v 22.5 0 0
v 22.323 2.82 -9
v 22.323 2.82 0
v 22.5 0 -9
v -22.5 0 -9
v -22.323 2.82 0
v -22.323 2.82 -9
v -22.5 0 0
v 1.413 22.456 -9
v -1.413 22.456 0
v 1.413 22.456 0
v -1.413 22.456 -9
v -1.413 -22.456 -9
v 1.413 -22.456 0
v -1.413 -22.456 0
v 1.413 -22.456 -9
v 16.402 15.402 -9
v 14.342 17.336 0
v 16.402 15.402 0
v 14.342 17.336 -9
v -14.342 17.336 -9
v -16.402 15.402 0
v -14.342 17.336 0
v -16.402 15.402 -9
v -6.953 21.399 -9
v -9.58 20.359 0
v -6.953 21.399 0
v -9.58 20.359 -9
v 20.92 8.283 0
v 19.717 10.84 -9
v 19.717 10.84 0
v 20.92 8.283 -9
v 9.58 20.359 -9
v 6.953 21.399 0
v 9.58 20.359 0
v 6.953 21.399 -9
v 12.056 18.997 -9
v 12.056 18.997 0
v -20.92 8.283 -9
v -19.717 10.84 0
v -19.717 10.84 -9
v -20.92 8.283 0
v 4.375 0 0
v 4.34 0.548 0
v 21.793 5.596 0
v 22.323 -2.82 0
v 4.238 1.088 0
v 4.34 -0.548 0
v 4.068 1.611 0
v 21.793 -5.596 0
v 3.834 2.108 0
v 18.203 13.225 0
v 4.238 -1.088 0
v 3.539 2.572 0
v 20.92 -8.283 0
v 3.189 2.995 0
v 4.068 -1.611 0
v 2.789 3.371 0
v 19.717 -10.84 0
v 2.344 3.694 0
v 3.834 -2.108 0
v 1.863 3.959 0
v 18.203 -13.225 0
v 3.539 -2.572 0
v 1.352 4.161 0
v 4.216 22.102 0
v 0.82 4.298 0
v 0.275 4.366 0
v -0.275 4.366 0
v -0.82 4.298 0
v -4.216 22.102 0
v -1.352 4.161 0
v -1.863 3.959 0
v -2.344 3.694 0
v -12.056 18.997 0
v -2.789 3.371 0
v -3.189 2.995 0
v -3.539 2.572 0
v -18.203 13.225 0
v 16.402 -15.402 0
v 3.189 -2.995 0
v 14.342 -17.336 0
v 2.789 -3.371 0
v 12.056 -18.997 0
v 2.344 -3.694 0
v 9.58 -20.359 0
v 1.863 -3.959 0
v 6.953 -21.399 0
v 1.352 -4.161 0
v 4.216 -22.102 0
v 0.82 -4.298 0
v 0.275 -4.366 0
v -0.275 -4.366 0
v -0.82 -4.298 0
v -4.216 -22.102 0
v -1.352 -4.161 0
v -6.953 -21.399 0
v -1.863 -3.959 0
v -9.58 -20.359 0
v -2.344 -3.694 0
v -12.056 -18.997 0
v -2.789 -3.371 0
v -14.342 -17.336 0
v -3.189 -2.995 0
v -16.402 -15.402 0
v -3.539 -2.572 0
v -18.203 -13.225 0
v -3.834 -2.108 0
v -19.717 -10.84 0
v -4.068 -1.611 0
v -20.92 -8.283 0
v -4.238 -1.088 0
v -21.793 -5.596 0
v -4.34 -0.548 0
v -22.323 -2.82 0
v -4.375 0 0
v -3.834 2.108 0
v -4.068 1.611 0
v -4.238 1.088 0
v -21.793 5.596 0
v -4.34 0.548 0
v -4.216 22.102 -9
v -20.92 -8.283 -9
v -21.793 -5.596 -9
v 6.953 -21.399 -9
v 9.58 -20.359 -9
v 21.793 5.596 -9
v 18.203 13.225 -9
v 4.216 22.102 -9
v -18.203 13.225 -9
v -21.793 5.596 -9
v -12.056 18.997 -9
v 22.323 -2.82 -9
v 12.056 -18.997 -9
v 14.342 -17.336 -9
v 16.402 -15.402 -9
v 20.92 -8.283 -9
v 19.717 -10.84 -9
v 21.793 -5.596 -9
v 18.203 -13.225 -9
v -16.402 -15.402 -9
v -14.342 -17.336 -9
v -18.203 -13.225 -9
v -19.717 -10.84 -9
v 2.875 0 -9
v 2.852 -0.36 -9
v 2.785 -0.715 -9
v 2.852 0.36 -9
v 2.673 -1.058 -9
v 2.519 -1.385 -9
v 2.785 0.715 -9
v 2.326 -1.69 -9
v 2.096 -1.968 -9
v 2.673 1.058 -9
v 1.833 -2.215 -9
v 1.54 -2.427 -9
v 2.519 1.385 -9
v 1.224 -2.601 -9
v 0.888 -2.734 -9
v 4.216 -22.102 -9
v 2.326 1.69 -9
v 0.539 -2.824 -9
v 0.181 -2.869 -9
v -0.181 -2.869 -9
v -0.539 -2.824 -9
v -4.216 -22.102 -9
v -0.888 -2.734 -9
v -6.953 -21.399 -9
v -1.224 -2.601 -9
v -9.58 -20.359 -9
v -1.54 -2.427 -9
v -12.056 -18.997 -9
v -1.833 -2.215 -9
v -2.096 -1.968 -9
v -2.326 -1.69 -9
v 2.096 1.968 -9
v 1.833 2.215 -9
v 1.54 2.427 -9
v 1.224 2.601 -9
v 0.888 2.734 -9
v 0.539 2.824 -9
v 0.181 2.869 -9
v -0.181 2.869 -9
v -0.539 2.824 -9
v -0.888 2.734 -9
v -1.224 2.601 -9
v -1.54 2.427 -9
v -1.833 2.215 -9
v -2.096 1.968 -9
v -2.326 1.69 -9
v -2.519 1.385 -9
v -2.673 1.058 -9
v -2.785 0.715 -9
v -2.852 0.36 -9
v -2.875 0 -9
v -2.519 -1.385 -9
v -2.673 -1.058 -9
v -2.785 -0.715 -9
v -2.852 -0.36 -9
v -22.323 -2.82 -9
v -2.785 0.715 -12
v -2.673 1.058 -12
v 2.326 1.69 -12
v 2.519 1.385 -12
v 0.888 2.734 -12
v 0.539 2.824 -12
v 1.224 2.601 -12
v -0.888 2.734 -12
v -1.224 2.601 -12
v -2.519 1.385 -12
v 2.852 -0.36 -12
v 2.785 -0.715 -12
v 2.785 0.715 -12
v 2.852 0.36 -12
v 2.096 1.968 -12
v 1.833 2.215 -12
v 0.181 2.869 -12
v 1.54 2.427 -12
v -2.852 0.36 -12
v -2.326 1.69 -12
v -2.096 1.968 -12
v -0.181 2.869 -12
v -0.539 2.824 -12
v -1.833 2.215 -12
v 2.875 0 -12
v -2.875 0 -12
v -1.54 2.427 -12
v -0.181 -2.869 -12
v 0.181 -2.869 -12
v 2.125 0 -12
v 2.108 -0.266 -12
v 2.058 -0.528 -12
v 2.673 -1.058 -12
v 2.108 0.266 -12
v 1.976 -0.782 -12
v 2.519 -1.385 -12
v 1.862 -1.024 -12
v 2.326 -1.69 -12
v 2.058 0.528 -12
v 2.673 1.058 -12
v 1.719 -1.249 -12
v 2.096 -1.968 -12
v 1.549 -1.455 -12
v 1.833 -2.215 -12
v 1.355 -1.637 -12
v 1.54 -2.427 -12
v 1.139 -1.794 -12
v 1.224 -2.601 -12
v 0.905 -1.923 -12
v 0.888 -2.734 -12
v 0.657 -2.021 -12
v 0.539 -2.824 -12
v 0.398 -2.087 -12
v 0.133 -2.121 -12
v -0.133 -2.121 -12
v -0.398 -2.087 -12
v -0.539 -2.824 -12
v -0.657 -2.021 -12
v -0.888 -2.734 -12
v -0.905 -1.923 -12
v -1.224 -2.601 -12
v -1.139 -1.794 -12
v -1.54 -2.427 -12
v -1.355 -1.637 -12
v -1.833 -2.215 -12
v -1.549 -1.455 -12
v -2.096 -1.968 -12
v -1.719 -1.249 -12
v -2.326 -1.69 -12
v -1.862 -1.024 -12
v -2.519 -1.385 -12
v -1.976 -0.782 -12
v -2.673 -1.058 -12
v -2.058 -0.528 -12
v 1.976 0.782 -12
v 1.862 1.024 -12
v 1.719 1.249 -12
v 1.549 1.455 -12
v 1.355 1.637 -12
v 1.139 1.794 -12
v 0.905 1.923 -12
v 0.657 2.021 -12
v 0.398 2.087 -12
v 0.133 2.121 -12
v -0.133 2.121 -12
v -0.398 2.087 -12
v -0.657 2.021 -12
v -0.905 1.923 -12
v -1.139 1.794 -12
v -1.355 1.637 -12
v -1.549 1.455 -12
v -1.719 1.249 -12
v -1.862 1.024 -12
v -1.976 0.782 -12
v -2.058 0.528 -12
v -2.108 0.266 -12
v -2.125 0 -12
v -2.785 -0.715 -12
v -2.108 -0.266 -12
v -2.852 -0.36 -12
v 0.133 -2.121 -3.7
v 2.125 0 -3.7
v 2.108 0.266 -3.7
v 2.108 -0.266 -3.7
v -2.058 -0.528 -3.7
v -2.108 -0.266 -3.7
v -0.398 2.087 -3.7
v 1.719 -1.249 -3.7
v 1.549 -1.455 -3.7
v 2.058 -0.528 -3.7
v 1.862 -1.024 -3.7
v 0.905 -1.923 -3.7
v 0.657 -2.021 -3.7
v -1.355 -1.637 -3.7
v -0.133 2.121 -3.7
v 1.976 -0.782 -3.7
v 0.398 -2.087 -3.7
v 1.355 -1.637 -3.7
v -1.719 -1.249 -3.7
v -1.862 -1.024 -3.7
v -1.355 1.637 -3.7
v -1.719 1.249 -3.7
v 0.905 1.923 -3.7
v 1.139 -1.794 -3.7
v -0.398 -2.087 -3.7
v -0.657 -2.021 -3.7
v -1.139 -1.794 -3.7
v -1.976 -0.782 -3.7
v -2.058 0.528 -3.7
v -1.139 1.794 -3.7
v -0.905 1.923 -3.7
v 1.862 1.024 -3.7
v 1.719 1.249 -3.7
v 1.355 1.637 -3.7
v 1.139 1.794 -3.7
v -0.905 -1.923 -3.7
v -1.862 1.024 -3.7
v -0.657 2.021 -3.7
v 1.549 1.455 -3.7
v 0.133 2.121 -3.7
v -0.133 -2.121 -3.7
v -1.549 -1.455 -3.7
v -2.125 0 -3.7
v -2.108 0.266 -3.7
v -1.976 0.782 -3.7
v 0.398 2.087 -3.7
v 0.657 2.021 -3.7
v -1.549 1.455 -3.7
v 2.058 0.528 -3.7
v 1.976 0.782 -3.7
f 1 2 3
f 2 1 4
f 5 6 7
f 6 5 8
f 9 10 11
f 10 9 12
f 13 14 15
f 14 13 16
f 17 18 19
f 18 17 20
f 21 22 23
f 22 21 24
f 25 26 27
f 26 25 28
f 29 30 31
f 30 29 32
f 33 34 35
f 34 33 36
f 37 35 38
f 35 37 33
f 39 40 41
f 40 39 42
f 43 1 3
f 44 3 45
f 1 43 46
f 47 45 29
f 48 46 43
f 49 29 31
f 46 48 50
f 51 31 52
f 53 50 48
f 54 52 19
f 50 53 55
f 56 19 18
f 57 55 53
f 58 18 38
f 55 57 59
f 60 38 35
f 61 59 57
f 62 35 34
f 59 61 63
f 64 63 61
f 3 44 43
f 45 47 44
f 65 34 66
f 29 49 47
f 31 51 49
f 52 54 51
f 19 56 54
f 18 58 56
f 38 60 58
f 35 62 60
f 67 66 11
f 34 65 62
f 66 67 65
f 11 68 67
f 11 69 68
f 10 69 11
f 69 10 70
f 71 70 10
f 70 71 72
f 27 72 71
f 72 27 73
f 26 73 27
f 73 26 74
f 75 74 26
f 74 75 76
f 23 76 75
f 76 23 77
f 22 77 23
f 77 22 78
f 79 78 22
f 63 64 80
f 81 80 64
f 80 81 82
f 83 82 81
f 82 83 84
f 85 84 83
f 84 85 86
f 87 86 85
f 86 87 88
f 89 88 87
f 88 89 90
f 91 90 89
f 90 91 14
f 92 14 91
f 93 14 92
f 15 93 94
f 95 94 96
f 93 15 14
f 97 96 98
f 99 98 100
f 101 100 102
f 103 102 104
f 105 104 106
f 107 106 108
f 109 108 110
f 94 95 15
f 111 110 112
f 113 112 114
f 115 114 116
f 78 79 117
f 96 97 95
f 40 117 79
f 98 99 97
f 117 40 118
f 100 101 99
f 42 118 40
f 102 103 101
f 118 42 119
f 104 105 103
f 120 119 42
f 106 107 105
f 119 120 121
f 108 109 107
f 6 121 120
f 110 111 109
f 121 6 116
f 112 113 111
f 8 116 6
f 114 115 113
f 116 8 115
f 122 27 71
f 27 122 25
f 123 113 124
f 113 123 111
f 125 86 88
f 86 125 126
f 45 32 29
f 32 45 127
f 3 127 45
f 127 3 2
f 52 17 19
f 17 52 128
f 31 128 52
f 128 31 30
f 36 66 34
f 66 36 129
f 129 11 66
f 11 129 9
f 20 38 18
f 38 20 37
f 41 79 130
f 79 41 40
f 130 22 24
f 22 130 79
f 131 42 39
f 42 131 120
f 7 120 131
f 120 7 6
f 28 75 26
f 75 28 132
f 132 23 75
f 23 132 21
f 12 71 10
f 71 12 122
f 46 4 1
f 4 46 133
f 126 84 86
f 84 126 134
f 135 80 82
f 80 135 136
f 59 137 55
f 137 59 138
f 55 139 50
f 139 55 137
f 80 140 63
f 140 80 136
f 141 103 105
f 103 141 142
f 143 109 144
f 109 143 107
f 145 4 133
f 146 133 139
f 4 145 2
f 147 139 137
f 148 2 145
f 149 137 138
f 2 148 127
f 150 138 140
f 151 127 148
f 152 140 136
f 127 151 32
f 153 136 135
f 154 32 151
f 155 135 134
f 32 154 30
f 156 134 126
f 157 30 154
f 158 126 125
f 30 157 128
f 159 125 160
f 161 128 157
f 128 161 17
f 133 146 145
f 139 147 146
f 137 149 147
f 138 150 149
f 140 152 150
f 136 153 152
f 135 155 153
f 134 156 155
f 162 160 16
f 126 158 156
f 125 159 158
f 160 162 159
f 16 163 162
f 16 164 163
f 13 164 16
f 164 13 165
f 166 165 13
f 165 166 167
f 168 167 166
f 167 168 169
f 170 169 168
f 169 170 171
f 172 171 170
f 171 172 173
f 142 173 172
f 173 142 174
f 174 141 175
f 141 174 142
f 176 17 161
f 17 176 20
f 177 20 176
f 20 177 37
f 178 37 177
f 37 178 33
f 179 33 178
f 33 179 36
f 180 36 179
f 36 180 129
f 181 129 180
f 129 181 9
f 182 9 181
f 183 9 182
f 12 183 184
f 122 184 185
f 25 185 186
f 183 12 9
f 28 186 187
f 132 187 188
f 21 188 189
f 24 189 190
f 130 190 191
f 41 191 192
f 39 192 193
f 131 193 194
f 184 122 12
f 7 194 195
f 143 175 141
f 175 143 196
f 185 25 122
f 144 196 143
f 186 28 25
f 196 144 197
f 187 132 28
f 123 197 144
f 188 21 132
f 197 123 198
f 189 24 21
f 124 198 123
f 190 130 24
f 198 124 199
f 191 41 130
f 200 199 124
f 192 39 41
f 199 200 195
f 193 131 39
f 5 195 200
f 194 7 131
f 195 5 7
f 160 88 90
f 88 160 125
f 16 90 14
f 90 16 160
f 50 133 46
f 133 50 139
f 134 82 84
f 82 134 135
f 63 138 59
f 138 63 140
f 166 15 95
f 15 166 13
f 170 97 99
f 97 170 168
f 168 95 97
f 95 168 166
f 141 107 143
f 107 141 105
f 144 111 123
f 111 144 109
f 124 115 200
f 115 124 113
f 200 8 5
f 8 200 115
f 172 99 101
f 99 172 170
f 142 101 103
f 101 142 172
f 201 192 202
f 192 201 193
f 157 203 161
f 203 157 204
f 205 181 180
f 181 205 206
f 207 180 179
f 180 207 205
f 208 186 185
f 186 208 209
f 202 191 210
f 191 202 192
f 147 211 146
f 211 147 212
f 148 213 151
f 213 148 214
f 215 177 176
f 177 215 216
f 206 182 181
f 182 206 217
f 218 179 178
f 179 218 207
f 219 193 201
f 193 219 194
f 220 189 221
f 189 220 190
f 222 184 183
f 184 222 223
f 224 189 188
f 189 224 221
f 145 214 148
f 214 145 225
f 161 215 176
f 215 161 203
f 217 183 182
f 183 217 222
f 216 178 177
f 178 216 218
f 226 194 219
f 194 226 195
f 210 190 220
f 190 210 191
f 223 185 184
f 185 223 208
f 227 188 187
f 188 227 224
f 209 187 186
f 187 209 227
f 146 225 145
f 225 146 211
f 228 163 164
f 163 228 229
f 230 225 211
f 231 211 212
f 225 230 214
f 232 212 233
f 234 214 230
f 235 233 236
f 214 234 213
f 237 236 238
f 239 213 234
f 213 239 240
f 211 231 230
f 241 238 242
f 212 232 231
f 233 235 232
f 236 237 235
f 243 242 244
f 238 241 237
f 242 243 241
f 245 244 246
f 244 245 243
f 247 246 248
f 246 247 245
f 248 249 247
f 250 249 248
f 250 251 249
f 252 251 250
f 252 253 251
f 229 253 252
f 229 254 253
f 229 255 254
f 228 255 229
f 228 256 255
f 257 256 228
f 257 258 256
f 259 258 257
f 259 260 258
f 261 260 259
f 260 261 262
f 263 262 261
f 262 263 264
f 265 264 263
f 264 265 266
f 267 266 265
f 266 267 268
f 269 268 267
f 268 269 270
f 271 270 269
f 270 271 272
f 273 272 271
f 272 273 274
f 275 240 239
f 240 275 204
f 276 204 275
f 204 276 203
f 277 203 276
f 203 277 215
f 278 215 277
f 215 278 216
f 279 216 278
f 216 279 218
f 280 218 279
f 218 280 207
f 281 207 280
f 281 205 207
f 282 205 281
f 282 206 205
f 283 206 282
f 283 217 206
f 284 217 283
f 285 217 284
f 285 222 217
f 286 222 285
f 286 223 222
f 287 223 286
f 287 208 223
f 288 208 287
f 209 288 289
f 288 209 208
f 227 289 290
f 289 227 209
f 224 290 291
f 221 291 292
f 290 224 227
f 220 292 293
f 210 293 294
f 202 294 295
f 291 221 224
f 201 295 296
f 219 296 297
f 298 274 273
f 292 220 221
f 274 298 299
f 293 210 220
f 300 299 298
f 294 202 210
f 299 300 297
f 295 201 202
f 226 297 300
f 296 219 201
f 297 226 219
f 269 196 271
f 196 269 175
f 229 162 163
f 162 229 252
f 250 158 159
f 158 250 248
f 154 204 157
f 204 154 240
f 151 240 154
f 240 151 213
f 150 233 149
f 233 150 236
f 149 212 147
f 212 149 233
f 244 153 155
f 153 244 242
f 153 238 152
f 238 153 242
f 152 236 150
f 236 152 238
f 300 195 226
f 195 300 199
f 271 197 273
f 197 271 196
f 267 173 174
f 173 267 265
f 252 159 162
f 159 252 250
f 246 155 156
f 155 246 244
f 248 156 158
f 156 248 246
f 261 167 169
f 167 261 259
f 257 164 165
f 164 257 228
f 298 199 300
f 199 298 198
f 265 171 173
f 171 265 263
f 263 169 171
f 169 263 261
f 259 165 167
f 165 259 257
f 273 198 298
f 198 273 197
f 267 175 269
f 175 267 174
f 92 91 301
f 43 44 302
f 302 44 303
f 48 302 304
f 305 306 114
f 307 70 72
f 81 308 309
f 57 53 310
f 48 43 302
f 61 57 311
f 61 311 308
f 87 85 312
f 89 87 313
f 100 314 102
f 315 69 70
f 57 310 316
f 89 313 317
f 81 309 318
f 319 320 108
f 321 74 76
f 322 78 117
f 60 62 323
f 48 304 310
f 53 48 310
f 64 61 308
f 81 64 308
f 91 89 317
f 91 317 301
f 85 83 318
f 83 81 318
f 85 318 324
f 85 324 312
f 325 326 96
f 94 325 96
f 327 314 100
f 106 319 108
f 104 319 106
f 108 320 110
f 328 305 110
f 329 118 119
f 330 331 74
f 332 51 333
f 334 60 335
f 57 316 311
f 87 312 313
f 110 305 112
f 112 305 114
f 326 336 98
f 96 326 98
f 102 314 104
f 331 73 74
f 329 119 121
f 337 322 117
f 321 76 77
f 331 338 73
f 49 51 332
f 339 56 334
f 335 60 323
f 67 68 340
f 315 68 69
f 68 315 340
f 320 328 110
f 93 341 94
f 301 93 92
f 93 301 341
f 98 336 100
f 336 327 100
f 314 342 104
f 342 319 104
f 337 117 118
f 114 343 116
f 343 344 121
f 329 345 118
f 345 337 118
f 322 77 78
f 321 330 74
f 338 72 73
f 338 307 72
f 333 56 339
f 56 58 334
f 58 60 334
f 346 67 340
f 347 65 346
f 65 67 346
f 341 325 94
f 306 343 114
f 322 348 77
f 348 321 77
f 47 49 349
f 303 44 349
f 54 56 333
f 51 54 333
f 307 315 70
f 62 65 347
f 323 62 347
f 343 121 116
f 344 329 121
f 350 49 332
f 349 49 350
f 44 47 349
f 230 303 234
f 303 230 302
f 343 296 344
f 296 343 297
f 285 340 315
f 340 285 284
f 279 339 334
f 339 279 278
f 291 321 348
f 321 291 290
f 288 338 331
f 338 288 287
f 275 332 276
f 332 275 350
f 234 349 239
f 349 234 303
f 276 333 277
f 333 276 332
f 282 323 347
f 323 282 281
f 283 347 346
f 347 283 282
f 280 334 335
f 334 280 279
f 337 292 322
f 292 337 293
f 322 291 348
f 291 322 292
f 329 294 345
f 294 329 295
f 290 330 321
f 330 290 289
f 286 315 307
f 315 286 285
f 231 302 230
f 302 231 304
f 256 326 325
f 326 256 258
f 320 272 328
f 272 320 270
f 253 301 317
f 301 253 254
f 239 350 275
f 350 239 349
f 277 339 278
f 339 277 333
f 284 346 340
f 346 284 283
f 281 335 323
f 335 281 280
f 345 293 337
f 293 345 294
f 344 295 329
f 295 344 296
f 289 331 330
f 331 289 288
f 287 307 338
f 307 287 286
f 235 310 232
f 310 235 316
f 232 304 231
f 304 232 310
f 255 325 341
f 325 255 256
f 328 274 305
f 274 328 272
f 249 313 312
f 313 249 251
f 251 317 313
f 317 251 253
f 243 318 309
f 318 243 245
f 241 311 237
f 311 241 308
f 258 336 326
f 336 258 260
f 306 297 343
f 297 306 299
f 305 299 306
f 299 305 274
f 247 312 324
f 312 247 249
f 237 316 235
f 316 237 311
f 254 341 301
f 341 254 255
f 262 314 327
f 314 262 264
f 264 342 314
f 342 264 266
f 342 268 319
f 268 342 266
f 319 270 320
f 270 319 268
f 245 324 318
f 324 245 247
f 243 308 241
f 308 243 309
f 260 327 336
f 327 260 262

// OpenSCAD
$fn = 50;


difference() {
	union() {
		translate(v = [0, 0, -9.0000000000]) {
			cylinder(h = 9, r = 22.5000000000);
		}
		translate(v = [0, 0, -12.0000000000]) {
			cylinder(h = 12, r = 2.8750000000);
		}
	}
	union() {
		translate(v = [0, 0, 0]) {
			rotate(a = [0, 0, 0]) {
				difference() {
					union() {
						translate(v = [0, 0, -12.0000000000]) {
							cylinder(h = 12, r = 2.0000000000);
						}
						translate(v = [0, 0, -3.7000000000]) {
							cylinder(h = 3.7000000000, r1 = 2.1250000000, r2 = 4.3750000000);
						}
						translate(v = [0, 0, -12.0000000000]) {
							cylinder(h = 12, r = 2.1250000000);
						}
						translate(v = [0, 0, -12.0000000000]) {
							cylinder(h = 12, r = 2.0000000000);
						}
					}
					union();
				}
			}
		}
	}
}
